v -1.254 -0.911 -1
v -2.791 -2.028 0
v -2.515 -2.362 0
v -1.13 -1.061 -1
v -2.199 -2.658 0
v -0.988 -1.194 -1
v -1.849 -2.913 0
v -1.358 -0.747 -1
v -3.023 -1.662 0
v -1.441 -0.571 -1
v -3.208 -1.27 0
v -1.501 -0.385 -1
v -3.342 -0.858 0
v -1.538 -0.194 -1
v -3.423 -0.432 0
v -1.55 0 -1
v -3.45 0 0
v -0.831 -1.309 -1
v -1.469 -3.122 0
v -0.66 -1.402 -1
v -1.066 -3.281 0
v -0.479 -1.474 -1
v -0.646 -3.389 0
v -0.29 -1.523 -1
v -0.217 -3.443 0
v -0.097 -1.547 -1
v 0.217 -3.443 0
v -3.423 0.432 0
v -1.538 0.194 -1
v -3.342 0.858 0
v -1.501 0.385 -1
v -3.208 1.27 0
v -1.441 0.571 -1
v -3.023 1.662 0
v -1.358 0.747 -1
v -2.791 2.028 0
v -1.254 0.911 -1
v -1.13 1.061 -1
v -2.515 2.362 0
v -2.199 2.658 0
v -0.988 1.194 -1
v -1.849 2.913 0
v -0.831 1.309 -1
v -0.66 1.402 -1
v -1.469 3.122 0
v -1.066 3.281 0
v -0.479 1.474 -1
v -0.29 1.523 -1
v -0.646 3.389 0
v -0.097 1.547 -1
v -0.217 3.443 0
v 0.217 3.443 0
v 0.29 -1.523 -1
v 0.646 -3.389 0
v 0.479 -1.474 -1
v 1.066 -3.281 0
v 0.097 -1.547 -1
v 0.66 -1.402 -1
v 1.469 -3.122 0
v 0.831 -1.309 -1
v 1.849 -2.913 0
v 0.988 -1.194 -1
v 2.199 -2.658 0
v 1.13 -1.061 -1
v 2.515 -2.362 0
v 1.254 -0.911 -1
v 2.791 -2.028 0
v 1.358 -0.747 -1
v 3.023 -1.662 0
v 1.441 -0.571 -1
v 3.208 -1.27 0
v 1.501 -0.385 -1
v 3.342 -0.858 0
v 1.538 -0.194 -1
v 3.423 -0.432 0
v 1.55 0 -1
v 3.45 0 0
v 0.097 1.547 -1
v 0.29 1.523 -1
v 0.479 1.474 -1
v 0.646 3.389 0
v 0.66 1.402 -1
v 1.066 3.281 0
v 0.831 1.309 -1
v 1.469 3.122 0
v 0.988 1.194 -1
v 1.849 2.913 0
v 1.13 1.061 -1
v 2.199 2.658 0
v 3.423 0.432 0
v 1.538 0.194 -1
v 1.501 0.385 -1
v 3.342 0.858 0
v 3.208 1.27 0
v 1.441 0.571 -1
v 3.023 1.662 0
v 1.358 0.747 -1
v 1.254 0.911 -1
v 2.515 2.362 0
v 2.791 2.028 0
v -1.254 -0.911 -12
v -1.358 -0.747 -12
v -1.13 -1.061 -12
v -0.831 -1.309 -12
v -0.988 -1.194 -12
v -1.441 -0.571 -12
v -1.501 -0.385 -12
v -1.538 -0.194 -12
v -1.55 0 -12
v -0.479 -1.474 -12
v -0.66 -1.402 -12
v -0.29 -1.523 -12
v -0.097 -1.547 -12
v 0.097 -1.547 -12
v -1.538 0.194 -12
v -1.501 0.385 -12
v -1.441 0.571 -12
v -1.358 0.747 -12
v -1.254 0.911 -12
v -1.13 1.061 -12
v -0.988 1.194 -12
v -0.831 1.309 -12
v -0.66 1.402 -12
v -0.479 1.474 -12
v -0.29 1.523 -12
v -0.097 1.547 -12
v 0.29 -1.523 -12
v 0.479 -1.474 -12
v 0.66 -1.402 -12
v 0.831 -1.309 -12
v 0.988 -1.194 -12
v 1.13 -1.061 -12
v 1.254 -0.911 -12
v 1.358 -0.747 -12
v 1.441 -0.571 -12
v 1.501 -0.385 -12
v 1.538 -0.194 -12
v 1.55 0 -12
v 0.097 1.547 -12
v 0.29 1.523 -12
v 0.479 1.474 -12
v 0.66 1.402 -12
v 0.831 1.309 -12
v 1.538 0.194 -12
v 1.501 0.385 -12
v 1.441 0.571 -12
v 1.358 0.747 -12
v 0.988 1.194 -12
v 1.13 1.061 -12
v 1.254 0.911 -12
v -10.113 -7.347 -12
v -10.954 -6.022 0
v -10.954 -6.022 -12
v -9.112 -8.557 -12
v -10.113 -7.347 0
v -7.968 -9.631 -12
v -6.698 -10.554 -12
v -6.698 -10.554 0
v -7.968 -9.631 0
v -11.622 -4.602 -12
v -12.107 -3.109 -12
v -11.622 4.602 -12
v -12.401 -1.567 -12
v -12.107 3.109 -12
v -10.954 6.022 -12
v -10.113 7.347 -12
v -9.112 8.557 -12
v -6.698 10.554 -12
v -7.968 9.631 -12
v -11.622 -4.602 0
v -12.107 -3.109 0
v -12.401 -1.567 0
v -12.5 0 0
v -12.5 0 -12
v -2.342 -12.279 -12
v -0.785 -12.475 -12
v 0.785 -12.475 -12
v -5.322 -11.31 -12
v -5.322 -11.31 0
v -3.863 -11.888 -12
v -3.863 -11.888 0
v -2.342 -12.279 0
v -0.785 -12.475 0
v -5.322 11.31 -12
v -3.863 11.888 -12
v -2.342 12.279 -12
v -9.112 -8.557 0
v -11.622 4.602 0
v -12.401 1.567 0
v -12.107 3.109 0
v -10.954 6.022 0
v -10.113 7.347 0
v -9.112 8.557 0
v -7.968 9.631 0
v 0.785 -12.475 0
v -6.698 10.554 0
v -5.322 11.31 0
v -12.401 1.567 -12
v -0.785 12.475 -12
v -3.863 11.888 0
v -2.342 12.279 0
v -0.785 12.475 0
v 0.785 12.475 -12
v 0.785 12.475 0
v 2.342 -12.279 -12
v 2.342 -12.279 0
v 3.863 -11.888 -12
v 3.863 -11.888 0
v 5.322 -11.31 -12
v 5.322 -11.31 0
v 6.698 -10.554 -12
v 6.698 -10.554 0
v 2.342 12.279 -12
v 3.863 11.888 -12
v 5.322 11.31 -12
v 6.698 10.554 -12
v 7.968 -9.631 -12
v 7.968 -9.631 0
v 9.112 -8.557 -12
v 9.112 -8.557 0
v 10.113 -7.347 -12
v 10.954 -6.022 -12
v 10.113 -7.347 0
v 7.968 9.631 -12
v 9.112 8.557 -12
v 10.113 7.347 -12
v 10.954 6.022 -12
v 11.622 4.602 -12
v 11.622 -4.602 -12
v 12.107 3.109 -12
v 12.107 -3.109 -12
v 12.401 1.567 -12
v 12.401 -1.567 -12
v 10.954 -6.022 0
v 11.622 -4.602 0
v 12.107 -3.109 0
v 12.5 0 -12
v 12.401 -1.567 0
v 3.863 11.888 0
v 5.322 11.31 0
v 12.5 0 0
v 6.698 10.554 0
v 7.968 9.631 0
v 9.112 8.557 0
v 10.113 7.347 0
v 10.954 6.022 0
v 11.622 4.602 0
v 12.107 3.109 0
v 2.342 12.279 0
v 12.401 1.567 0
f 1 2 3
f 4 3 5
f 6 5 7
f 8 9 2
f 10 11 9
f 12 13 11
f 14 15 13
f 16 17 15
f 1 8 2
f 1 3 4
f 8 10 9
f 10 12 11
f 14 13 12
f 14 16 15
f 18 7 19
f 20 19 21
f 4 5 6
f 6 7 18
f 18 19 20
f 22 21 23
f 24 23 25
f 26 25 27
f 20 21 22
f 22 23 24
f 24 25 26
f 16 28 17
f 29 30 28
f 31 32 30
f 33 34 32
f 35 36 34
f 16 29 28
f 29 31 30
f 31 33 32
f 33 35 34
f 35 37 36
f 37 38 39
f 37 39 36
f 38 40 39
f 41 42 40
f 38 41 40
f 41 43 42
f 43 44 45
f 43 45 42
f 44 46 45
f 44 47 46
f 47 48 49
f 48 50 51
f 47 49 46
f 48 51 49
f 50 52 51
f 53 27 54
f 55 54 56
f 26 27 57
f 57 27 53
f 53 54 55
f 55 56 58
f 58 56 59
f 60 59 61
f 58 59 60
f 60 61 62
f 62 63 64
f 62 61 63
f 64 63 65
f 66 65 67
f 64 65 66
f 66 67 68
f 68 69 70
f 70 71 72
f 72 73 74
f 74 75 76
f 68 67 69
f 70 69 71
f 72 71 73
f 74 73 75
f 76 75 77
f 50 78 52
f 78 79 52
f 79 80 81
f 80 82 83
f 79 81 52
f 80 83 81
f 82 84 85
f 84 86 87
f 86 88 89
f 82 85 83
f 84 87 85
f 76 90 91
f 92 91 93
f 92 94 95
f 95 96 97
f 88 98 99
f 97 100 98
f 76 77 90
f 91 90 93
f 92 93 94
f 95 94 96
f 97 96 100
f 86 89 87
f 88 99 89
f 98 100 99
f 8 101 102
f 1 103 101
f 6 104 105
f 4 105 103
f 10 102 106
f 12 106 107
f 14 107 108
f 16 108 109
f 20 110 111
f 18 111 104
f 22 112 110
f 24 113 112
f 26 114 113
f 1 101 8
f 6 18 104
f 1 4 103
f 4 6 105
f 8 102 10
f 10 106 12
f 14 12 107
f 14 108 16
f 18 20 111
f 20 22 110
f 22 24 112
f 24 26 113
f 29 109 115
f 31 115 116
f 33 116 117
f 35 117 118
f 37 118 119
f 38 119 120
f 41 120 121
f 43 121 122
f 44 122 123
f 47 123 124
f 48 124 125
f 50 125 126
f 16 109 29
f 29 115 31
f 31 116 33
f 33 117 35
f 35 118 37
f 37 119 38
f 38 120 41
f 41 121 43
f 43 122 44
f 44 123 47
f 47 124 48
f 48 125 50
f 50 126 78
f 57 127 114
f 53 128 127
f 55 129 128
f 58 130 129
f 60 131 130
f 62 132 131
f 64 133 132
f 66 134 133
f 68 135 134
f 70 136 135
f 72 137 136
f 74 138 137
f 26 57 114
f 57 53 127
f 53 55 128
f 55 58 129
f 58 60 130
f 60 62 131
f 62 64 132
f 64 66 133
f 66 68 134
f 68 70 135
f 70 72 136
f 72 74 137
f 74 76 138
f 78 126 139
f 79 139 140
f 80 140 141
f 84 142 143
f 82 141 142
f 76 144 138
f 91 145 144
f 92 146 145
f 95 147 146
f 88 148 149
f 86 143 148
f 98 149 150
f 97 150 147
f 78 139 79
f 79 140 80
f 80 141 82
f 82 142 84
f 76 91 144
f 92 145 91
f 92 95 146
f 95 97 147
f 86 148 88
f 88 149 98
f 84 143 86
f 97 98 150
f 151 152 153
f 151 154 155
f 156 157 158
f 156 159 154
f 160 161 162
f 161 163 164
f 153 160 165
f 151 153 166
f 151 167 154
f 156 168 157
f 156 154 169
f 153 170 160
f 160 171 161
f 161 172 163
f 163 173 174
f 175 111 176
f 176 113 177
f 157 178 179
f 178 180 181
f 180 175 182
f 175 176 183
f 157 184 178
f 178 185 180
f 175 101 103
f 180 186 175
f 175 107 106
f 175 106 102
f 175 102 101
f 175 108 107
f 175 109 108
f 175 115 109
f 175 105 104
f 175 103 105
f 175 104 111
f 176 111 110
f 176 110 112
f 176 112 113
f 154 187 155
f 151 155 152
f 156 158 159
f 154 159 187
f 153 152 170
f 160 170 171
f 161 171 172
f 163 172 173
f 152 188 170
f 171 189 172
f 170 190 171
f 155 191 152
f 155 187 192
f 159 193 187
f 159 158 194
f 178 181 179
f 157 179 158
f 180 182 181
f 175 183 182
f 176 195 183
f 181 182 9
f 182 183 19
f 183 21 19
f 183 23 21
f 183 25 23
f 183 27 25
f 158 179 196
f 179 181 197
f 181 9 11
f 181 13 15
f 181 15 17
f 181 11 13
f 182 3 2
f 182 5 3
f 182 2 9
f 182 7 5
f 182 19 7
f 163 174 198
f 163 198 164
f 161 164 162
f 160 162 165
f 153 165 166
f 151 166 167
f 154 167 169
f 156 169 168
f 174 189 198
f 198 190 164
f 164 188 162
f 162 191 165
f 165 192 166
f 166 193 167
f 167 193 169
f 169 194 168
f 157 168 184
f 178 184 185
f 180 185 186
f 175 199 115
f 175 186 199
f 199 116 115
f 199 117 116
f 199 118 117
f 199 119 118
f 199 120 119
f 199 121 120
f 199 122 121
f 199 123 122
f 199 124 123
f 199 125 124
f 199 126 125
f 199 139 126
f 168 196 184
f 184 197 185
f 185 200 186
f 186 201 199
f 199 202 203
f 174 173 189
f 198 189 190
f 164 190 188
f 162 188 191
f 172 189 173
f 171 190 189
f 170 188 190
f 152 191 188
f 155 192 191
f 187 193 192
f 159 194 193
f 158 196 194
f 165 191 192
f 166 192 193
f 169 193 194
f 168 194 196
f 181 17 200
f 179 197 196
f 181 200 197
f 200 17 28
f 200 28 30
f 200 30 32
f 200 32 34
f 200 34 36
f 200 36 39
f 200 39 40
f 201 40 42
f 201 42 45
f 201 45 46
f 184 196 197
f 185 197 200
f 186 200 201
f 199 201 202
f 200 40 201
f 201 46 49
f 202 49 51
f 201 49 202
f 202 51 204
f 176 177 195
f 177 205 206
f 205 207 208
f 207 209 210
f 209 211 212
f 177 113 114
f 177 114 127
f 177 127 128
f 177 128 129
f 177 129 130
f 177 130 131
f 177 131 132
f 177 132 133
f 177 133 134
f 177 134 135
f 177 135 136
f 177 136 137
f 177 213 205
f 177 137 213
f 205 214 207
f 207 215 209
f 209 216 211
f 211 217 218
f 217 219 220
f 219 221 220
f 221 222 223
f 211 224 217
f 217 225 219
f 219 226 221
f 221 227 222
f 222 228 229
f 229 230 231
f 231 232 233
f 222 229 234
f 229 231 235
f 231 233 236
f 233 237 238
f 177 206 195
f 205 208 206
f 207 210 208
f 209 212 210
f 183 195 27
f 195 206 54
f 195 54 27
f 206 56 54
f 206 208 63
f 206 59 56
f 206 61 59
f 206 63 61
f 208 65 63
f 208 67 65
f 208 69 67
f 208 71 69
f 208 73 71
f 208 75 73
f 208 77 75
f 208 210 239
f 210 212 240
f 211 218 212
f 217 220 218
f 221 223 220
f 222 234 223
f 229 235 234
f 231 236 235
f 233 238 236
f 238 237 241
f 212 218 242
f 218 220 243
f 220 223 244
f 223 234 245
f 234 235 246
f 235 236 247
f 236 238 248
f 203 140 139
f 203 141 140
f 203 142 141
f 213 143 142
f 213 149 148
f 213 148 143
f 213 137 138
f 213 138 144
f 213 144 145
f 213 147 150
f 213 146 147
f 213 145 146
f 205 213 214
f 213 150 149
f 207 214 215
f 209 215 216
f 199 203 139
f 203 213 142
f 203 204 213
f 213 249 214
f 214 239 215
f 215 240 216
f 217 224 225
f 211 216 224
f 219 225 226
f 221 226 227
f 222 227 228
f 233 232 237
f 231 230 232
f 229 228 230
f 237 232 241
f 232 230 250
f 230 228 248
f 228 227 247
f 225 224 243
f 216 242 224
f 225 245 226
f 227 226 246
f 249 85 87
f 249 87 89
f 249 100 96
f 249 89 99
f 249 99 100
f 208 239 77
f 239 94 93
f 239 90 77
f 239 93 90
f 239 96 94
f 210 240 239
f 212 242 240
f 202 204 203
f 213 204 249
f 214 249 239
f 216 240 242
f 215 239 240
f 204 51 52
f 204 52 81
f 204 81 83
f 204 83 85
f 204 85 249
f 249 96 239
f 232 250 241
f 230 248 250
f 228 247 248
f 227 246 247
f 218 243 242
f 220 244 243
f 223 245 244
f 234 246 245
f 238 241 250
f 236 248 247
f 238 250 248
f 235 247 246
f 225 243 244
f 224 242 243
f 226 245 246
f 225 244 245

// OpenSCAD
$fn = 50;

difference() {
	union() {
		translate(v = [0, 0, -12.0]) {
			cylinder(h = 12, r = 12.5);
		}
	}
	union() {
		translate(v = [0, 0, 0]) {
			rotate(a = [0, 0, 0]) {
				difference() {
					union() {
						translate(v = [0, 0, -15.0]) {
							cylinder(h = 15, r = 1.25);
						}
						translate(v = [0, 0, -1.0]) {
							cylinder(h = 1.0, r1 = 1.55, r2 = 3.45);
						}
						translate(v = [0, 0, -15.0]) {
							cylinder(h = 15, r = 1.55);
						}
						translate(v = [0, 0, -15.0]) {
							cylinder(h = 15, r = 1.25);
						}
					}
					union();
				}
			}
		}
	}
}
